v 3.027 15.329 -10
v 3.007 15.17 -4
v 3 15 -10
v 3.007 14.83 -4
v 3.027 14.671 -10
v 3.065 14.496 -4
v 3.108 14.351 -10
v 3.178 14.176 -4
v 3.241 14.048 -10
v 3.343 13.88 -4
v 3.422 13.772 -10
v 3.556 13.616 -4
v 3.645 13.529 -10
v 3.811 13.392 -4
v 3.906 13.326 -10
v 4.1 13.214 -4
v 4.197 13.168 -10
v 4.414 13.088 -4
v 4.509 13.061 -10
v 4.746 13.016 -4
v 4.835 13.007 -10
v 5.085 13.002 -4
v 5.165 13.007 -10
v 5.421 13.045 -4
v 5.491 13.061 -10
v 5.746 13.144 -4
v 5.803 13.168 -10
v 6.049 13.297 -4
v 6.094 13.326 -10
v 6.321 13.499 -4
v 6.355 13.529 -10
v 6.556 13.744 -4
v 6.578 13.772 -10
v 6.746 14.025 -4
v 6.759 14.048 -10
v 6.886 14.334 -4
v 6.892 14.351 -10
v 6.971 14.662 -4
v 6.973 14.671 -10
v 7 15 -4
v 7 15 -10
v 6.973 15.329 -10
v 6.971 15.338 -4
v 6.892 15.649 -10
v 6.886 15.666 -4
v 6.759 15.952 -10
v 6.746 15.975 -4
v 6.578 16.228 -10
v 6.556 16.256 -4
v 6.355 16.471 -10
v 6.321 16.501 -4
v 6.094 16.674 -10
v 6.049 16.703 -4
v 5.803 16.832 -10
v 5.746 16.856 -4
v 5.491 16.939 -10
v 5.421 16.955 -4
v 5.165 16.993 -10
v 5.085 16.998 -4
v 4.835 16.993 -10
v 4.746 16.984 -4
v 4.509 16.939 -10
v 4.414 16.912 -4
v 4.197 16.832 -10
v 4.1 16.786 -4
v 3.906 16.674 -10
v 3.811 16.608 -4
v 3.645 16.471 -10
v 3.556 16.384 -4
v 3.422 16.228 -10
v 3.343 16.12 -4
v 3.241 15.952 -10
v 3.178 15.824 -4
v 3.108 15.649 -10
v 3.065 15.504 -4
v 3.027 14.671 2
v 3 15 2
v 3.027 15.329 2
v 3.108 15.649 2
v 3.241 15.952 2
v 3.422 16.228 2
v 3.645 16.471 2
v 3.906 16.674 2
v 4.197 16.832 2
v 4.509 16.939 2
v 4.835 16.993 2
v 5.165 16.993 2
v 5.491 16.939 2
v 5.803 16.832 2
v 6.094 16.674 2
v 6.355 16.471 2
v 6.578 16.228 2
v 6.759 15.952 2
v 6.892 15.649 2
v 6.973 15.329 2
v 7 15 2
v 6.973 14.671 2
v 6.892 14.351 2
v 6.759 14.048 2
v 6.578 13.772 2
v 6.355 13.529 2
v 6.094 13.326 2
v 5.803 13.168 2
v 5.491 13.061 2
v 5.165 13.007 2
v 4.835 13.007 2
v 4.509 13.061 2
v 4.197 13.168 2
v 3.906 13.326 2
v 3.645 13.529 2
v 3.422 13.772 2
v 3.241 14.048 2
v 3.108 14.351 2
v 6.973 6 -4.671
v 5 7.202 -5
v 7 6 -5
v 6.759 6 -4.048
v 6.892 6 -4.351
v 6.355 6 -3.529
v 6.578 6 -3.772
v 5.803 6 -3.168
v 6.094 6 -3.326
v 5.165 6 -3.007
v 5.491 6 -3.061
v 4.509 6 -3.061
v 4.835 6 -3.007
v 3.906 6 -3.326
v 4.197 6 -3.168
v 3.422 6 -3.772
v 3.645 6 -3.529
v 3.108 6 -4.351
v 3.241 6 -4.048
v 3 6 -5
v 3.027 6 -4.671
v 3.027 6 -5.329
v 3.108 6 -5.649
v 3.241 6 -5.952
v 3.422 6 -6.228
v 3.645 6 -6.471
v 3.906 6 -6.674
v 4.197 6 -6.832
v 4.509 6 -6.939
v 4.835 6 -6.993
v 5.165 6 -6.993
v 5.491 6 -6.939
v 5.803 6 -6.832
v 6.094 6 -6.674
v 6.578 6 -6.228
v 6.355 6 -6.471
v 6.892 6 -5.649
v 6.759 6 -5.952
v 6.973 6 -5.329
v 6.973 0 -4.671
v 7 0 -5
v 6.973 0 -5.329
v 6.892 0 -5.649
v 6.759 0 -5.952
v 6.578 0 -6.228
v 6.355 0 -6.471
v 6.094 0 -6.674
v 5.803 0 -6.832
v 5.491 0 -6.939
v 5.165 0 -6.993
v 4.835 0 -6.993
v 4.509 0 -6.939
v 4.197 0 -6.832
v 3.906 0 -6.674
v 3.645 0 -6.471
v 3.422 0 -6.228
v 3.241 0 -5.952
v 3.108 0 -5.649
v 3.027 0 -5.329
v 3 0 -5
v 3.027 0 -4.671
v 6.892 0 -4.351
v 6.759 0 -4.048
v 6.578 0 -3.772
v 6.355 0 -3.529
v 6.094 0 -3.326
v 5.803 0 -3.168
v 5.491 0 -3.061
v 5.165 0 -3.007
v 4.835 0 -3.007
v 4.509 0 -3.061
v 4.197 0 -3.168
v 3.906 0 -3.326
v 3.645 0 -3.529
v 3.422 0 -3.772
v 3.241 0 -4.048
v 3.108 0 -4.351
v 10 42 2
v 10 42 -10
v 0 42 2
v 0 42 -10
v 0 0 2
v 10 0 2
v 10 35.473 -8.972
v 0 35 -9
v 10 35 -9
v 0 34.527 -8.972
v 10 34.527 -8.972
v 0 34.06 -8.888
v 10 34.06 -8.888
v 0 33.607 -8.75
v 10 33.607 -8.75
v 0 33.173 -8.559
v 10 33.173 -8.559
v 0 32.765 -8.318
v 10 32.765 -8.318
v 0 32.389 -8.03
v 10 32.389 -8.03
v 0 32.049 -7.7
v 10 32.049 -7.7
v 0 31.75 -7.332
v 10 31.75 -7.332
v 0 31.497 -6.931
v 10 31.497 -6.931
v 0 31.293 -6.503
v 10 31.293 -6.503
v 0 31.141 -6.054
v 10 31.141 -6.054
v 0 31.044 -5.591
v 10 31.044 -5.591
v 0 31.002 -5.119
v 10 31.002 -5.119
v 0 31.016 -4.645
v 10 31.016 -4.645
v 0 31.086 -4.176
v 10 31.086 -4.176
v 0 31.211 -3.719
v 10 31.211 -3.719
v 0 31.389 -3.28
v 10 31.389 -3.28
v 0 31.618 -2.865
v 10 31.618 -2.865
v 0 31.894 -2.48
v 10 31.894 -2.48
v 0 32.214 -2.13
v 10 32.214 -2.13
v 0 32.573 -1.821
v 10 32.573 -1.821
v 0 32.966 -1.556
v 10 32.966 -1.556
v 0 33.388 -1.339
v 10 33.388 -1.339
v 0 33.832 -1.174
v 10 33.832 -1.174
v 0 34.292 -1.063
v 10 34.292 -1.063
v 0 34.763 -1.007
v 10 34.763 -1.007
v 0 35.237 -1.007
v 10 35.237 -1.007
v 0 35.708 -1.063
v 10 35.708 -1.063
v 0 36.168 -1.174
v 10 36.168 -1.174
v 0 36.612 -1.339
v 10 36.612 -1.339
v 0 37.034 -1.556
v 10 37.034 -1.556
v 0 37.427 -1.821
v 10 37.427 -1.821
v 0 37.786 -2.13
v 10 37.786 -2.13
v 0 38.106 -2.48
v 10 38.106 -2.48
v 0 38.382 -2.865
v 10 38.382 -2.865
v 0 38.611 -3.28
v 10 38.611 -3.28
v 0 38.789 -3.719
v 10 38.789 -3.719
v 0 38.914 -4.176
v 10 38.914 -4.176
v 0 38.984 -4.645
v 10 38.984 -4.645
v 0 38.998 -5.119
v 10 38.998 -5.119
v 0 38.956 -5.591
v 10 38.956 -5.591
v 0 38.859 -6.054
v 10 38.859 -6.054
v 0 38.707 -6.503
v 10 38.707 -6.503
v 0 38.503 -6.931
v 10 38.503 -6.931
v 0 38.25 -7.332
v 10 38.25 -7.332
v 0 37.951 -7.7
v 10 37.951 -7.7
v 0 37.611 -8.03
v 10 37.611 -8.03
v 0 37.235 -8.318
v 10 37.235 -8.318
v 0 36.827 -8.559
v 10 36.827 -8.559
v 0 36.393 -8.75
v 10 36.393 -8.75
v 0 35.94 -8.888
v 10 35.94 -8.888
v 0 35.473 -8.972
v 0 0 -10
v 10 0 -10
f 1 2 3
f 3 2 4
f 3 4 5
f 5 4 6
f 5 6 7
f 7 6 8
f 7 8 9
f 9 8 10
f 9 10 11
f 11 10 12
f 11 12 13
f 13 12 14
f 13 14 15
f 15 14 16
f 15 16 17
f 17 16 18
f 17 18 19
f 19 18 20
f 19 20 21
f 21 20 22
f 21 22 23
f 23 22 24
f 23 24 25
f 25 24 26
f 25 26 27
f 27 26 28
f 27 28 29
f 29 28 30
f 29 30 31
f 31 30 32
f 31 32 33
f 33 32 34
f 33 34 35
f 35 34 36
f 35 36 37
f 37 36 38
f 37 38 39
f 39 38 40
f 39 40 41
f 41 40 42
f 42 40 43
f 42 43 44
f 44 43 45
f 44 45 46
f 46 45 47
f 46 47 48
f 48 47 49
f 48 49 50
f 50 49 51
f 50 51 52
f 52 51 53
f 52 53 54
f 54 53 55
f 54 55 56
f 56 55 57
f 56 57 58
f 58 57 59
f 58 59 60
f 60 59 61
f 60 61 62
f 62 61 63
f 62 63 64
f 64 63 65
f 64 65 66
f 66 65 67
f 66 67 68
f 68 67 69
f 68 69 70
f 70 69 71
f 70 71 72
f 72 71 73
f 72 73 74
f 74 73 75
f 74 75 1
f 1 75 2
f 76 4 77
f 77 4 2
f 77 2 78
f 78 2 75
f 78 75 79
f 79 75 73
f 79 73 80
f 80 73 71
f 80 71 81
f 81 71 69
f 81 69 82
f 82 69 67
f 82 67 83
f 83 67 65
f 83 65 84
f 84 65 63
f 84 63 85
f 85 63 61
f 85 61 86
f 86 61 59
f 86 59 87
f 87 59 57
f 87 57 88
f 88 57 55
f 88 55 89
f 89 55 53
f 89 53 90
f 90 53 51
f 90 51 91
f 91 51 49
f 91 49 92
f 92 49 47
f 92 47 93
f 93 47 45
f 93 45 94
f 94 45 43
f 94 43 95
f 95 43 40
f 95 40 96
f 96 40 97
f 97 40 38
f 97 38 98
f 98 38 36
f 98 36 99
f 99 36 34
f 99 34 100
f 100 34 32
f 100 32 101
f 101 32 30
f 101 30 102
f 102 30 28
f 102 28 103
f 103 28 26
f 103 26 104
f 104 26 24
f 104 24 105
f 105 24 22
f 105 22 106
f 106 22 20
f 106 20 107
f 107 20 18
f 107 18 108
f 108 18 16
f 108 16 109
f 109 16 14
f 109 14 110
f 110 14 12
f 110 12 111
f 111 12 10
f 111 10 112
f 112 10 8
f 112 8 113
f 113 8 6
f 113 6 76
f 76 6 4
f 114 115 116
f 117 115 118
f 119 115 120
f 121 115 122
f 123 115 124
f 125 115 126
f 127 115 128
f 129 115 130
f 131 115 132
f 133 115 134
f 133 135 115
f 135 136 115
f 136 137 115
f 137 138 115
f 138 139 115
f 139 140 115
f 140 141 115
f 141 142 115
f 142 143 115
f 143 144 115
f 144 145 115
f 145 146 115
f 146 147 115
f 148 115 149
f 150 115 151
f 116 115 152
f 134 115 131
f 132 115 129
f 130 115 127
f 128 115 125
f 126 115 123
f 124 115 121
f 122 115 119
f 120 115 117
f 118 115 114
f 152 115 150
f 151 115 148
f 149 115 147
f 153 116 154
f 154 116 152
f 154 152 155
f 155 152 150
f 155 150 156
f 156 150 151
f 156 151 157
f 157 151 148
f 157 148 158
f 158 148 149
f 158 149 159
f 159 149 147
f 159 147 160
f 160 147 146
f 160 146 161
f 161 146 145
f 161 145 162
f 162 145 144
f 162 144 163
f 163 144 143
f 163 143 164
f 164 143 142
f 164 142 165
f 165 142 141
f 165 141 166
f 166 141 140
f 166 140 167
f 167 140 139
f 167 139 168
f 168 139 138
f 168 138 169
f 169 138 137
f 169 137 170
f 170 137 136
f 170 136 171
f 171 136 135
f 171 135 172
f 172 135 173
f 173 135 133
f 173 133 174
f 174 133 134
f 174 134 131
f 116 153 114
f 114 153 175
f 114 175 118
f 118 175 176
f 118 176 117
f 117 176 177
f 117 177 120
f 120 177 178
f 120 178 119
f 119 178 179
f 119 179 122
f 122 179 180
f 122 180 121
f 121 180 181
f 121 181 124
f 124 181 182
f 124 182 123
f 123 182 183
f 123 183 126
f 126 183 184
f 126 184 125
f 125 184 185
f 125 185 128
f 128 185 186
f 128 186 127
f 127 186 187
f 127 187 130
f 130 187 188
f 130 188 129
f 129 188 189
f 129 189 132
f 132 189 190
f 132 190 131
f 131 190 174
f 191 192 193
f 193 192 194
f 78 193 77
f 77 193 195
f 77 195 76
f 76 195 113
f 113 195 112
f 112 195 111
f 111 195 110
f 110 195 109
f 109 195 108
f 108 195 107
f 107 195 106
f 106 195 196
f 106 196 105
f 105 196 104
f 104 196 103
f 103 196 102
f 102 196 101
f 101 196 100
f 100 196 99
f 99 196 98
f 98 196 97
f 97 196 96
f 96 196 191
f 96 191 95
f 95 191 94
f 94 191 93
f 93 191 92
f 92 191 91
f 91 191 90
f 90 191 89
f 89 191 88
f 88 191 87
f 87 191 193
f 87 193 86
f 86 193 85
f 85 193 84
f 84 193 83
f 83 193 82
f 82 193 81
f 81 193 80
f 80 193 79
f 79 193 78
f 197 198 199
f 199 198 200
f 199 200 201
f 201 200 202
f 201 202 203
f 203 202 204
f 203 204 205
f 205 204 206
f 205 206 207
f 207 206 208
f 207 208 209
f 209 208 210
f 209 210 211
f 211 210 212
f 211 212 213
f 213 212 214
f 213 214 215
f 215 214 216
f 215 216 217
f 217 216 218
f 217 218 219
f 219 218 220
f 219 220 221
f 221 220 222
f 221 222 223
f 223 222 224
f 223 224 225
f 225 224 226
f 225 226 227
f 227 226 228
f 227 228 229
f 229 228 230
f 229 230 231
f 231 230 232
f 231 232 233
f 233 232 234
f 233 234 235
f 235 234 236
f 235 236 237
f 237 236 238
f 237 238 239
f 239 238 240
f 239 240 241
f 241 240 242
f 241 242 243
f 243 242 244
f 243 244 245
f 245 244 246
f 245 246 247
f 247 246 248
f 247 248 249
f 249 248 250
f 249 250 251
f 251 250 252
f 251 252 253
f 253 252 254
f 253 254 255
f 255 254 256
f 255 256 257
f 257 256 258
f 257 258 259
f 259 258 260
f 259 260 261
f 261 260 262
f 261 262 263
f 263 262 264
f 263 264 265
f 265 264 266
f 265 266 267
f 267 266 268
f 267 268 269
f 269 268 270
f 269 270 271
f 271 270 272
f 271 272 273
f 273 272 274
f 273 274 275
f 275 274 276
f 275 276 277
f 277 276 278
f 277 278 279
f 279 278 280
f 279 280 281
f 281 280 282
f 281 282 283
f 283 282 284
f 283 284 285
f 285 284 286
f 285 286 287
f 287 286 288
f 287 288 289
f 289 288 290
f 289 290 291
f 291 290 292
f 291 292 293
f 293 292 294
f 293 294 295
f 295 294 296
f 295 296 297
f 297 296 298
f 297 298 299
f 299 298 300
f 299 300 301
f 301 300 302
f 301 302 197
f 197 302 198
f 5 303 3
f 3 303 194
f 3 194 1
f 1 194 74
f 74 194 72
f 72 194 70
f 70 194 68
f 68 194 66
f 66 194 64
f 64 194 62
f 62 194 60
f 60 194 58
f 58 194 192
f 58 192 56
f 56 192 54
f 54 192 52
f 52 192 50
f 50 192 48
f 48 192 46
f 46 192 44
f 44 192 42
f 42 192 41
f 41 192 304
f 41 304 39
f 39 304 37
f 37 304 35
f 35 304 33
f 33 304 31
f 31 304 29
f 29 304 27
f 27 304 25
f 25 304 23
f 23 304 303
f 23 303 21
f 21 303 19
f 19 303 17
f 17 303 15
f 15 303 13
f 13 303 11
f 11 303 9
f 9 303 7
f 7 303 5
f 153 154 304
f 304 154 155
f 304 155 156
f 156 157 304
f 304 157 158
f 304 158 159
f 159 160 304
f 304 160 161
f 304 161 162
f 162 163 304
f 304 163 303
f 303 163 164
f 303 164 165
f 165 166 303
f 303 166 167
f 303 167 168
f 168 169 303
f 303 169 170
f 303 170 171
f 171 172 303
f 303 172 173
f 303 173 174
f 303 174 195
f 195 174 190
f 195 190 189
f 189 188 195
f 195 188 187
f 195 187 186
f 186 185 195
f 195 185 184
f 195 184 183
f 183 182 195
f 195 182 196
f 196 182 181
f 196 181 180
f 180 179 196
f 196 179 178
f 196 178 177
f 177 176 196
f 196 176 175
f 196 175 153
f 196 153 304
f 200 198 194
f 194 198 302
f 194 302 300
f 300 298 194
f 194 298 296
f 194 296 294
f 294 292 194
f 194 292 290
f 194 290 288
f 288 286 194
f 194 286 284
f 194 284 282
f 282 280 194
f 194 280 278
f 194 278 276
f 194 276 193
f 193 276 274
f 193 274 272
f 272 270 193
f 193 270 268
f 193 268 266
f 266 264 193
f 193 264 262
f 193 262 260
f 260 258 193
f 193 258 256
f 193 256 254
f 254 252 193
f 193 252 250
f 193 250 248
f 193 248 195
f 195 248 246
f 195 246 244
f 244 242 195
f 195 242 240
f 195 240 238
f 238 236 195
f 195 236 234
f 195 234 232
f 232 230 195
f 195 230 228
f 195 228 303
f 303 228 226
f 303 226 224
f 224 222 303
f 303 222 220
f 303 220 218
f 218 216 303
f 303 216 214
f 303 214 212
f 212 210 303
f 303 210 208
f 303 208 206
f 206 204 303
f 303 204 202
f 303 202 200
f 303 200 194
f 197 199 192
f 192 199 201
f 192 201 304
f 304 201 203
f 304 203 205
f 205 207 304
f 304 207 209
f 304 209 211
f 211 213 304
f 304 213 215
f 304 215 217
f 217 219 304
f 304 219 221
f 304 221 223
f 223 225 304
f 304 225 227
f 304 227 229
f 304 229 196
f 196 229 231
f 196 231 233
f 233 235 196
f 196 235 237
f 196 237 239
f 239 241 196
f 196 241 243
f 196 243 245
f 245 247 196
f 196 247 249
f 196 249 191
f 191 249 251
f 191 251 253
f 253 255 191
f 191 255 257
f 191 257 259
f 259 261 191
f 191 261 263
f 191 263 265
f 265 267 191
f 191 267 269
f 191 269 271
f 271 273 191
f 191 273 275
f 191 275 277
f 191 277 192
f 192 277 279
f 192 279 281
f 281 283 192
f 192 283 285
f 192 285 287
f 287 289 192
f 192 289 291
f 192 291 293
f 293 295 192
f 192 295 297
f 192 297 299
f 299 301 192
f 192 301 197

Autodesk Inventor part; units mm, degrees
ref_plane "YZ Plane" through (0, 0, 0) normal (1, 0, 0) x (0, 1, 0)
ref_plane "XZ Plane" through (0, 0, 0) normal (0, 1, 0) x (-1, 0, 0)
ref_plane "XY Plane" through (0, 0, 0) normal (0, 0, 1) x (1, 0, 0)
sketch "Esquisse1" plane through (0, 0, 0) normal (1, 0, 0) x (0, 1, 0)
  line L0 (0, 0) -> (40, 0)
  line L1 (40, 0) -> (40, -10)
  line L2 (40, -10) -> (0, -10)
  line L3 (0, -10) -> (0, 0)
  dimension "d0" = 40
  dimension "d1" = 10
extrude "Extrusion1" add sketch "Esquisse1" along normal blind 10
sketch "Esquisse2" plane through (10, 0, 0) normal (1, 0, 0) x (0, 0, -1)
  line L0 (10, 40) -> (0, 40) projected
  line L1 (0, 40) -> (0, 0) projected
  point P0 (5, 35)
  dimension "d4" = 5
  dimension "d5" = 5
hole "Perçage1" at (10, 35, -5) direction (-1, 0, 0) diameter 8 depth 10 tip angle 118
sketch "Esquisse3" plane through (0, 0, 0) normal (0, 0, 1) x (1, 0, 0)
  line L0 (0, 40) -> (0, 0) projected
  line L1 (10, 0) -> (10, 40) projected
  line L2 (0, 40) -> (10, 40)
  line L3 (10, 40) -> (10, 0)
  line L4 (10, 0) -> (0, 0)
  line L5 (0, 0) -> (0, 40)
extrude "Extrusion2" add sketch "Esquisse3" along normal blind 2
sketch "Esquisse4" plane through (0, 40, -10) normal (0, 1, 0) x (1, 0, 0)
  line L0 (0, 0) -> (0, -12) projected
  line L1 (0, 0) -> (10, 0) projected
  line L2 (0, -12) -> (10, -12)
  line L3 (10, -12) -> (10, 0)
  line L4 (10, 0) -> (0, 0)
  line L5 (0, 0) -> (0, -12)
  point P0 (0, -10)
extrude "Extrusion3" add sketch "Esquisse4" along normal blind 2
sketch "Esquisse5" plane through (10, 0, 0) normal (1, 0, 0) x (0, 0, -1)
  point P0 (0, 0)
sketch "Esquisse6" plane through (0, 0, -10) normal (0, -1, 0) x (1, 0, 0)
  line L0 (0, 0) -> (10, 0) projected
  line L1 (0, 0) -> (0, 12) projected
  point P0 (0, 10)
  point P1 (5, 5)
  dimension "d17" = 5
  dimension "d18" = 5
hole "Perçage2" at (5, 0, -5) direction (0, 1, 0) diameter 4 depth 6 tip angle 118
sketch "Esquisse7" plane through (10, 0, -10) normal (0, 0, -1) x (-1, 0, 0)
  line L0 (10, 0) -> (0, 0) projected
  line L1 (0, 0) -> (0, 42) projected
  point P0 (5, 15)
  dimension "d26" = 15
  dimension "d27" = 5
hole "Perçage3" at (5, 15, -10) direction (0, 0, 1) diameter 4 depth 12 tip angle 118
properties part number "SupportCodeuse"
